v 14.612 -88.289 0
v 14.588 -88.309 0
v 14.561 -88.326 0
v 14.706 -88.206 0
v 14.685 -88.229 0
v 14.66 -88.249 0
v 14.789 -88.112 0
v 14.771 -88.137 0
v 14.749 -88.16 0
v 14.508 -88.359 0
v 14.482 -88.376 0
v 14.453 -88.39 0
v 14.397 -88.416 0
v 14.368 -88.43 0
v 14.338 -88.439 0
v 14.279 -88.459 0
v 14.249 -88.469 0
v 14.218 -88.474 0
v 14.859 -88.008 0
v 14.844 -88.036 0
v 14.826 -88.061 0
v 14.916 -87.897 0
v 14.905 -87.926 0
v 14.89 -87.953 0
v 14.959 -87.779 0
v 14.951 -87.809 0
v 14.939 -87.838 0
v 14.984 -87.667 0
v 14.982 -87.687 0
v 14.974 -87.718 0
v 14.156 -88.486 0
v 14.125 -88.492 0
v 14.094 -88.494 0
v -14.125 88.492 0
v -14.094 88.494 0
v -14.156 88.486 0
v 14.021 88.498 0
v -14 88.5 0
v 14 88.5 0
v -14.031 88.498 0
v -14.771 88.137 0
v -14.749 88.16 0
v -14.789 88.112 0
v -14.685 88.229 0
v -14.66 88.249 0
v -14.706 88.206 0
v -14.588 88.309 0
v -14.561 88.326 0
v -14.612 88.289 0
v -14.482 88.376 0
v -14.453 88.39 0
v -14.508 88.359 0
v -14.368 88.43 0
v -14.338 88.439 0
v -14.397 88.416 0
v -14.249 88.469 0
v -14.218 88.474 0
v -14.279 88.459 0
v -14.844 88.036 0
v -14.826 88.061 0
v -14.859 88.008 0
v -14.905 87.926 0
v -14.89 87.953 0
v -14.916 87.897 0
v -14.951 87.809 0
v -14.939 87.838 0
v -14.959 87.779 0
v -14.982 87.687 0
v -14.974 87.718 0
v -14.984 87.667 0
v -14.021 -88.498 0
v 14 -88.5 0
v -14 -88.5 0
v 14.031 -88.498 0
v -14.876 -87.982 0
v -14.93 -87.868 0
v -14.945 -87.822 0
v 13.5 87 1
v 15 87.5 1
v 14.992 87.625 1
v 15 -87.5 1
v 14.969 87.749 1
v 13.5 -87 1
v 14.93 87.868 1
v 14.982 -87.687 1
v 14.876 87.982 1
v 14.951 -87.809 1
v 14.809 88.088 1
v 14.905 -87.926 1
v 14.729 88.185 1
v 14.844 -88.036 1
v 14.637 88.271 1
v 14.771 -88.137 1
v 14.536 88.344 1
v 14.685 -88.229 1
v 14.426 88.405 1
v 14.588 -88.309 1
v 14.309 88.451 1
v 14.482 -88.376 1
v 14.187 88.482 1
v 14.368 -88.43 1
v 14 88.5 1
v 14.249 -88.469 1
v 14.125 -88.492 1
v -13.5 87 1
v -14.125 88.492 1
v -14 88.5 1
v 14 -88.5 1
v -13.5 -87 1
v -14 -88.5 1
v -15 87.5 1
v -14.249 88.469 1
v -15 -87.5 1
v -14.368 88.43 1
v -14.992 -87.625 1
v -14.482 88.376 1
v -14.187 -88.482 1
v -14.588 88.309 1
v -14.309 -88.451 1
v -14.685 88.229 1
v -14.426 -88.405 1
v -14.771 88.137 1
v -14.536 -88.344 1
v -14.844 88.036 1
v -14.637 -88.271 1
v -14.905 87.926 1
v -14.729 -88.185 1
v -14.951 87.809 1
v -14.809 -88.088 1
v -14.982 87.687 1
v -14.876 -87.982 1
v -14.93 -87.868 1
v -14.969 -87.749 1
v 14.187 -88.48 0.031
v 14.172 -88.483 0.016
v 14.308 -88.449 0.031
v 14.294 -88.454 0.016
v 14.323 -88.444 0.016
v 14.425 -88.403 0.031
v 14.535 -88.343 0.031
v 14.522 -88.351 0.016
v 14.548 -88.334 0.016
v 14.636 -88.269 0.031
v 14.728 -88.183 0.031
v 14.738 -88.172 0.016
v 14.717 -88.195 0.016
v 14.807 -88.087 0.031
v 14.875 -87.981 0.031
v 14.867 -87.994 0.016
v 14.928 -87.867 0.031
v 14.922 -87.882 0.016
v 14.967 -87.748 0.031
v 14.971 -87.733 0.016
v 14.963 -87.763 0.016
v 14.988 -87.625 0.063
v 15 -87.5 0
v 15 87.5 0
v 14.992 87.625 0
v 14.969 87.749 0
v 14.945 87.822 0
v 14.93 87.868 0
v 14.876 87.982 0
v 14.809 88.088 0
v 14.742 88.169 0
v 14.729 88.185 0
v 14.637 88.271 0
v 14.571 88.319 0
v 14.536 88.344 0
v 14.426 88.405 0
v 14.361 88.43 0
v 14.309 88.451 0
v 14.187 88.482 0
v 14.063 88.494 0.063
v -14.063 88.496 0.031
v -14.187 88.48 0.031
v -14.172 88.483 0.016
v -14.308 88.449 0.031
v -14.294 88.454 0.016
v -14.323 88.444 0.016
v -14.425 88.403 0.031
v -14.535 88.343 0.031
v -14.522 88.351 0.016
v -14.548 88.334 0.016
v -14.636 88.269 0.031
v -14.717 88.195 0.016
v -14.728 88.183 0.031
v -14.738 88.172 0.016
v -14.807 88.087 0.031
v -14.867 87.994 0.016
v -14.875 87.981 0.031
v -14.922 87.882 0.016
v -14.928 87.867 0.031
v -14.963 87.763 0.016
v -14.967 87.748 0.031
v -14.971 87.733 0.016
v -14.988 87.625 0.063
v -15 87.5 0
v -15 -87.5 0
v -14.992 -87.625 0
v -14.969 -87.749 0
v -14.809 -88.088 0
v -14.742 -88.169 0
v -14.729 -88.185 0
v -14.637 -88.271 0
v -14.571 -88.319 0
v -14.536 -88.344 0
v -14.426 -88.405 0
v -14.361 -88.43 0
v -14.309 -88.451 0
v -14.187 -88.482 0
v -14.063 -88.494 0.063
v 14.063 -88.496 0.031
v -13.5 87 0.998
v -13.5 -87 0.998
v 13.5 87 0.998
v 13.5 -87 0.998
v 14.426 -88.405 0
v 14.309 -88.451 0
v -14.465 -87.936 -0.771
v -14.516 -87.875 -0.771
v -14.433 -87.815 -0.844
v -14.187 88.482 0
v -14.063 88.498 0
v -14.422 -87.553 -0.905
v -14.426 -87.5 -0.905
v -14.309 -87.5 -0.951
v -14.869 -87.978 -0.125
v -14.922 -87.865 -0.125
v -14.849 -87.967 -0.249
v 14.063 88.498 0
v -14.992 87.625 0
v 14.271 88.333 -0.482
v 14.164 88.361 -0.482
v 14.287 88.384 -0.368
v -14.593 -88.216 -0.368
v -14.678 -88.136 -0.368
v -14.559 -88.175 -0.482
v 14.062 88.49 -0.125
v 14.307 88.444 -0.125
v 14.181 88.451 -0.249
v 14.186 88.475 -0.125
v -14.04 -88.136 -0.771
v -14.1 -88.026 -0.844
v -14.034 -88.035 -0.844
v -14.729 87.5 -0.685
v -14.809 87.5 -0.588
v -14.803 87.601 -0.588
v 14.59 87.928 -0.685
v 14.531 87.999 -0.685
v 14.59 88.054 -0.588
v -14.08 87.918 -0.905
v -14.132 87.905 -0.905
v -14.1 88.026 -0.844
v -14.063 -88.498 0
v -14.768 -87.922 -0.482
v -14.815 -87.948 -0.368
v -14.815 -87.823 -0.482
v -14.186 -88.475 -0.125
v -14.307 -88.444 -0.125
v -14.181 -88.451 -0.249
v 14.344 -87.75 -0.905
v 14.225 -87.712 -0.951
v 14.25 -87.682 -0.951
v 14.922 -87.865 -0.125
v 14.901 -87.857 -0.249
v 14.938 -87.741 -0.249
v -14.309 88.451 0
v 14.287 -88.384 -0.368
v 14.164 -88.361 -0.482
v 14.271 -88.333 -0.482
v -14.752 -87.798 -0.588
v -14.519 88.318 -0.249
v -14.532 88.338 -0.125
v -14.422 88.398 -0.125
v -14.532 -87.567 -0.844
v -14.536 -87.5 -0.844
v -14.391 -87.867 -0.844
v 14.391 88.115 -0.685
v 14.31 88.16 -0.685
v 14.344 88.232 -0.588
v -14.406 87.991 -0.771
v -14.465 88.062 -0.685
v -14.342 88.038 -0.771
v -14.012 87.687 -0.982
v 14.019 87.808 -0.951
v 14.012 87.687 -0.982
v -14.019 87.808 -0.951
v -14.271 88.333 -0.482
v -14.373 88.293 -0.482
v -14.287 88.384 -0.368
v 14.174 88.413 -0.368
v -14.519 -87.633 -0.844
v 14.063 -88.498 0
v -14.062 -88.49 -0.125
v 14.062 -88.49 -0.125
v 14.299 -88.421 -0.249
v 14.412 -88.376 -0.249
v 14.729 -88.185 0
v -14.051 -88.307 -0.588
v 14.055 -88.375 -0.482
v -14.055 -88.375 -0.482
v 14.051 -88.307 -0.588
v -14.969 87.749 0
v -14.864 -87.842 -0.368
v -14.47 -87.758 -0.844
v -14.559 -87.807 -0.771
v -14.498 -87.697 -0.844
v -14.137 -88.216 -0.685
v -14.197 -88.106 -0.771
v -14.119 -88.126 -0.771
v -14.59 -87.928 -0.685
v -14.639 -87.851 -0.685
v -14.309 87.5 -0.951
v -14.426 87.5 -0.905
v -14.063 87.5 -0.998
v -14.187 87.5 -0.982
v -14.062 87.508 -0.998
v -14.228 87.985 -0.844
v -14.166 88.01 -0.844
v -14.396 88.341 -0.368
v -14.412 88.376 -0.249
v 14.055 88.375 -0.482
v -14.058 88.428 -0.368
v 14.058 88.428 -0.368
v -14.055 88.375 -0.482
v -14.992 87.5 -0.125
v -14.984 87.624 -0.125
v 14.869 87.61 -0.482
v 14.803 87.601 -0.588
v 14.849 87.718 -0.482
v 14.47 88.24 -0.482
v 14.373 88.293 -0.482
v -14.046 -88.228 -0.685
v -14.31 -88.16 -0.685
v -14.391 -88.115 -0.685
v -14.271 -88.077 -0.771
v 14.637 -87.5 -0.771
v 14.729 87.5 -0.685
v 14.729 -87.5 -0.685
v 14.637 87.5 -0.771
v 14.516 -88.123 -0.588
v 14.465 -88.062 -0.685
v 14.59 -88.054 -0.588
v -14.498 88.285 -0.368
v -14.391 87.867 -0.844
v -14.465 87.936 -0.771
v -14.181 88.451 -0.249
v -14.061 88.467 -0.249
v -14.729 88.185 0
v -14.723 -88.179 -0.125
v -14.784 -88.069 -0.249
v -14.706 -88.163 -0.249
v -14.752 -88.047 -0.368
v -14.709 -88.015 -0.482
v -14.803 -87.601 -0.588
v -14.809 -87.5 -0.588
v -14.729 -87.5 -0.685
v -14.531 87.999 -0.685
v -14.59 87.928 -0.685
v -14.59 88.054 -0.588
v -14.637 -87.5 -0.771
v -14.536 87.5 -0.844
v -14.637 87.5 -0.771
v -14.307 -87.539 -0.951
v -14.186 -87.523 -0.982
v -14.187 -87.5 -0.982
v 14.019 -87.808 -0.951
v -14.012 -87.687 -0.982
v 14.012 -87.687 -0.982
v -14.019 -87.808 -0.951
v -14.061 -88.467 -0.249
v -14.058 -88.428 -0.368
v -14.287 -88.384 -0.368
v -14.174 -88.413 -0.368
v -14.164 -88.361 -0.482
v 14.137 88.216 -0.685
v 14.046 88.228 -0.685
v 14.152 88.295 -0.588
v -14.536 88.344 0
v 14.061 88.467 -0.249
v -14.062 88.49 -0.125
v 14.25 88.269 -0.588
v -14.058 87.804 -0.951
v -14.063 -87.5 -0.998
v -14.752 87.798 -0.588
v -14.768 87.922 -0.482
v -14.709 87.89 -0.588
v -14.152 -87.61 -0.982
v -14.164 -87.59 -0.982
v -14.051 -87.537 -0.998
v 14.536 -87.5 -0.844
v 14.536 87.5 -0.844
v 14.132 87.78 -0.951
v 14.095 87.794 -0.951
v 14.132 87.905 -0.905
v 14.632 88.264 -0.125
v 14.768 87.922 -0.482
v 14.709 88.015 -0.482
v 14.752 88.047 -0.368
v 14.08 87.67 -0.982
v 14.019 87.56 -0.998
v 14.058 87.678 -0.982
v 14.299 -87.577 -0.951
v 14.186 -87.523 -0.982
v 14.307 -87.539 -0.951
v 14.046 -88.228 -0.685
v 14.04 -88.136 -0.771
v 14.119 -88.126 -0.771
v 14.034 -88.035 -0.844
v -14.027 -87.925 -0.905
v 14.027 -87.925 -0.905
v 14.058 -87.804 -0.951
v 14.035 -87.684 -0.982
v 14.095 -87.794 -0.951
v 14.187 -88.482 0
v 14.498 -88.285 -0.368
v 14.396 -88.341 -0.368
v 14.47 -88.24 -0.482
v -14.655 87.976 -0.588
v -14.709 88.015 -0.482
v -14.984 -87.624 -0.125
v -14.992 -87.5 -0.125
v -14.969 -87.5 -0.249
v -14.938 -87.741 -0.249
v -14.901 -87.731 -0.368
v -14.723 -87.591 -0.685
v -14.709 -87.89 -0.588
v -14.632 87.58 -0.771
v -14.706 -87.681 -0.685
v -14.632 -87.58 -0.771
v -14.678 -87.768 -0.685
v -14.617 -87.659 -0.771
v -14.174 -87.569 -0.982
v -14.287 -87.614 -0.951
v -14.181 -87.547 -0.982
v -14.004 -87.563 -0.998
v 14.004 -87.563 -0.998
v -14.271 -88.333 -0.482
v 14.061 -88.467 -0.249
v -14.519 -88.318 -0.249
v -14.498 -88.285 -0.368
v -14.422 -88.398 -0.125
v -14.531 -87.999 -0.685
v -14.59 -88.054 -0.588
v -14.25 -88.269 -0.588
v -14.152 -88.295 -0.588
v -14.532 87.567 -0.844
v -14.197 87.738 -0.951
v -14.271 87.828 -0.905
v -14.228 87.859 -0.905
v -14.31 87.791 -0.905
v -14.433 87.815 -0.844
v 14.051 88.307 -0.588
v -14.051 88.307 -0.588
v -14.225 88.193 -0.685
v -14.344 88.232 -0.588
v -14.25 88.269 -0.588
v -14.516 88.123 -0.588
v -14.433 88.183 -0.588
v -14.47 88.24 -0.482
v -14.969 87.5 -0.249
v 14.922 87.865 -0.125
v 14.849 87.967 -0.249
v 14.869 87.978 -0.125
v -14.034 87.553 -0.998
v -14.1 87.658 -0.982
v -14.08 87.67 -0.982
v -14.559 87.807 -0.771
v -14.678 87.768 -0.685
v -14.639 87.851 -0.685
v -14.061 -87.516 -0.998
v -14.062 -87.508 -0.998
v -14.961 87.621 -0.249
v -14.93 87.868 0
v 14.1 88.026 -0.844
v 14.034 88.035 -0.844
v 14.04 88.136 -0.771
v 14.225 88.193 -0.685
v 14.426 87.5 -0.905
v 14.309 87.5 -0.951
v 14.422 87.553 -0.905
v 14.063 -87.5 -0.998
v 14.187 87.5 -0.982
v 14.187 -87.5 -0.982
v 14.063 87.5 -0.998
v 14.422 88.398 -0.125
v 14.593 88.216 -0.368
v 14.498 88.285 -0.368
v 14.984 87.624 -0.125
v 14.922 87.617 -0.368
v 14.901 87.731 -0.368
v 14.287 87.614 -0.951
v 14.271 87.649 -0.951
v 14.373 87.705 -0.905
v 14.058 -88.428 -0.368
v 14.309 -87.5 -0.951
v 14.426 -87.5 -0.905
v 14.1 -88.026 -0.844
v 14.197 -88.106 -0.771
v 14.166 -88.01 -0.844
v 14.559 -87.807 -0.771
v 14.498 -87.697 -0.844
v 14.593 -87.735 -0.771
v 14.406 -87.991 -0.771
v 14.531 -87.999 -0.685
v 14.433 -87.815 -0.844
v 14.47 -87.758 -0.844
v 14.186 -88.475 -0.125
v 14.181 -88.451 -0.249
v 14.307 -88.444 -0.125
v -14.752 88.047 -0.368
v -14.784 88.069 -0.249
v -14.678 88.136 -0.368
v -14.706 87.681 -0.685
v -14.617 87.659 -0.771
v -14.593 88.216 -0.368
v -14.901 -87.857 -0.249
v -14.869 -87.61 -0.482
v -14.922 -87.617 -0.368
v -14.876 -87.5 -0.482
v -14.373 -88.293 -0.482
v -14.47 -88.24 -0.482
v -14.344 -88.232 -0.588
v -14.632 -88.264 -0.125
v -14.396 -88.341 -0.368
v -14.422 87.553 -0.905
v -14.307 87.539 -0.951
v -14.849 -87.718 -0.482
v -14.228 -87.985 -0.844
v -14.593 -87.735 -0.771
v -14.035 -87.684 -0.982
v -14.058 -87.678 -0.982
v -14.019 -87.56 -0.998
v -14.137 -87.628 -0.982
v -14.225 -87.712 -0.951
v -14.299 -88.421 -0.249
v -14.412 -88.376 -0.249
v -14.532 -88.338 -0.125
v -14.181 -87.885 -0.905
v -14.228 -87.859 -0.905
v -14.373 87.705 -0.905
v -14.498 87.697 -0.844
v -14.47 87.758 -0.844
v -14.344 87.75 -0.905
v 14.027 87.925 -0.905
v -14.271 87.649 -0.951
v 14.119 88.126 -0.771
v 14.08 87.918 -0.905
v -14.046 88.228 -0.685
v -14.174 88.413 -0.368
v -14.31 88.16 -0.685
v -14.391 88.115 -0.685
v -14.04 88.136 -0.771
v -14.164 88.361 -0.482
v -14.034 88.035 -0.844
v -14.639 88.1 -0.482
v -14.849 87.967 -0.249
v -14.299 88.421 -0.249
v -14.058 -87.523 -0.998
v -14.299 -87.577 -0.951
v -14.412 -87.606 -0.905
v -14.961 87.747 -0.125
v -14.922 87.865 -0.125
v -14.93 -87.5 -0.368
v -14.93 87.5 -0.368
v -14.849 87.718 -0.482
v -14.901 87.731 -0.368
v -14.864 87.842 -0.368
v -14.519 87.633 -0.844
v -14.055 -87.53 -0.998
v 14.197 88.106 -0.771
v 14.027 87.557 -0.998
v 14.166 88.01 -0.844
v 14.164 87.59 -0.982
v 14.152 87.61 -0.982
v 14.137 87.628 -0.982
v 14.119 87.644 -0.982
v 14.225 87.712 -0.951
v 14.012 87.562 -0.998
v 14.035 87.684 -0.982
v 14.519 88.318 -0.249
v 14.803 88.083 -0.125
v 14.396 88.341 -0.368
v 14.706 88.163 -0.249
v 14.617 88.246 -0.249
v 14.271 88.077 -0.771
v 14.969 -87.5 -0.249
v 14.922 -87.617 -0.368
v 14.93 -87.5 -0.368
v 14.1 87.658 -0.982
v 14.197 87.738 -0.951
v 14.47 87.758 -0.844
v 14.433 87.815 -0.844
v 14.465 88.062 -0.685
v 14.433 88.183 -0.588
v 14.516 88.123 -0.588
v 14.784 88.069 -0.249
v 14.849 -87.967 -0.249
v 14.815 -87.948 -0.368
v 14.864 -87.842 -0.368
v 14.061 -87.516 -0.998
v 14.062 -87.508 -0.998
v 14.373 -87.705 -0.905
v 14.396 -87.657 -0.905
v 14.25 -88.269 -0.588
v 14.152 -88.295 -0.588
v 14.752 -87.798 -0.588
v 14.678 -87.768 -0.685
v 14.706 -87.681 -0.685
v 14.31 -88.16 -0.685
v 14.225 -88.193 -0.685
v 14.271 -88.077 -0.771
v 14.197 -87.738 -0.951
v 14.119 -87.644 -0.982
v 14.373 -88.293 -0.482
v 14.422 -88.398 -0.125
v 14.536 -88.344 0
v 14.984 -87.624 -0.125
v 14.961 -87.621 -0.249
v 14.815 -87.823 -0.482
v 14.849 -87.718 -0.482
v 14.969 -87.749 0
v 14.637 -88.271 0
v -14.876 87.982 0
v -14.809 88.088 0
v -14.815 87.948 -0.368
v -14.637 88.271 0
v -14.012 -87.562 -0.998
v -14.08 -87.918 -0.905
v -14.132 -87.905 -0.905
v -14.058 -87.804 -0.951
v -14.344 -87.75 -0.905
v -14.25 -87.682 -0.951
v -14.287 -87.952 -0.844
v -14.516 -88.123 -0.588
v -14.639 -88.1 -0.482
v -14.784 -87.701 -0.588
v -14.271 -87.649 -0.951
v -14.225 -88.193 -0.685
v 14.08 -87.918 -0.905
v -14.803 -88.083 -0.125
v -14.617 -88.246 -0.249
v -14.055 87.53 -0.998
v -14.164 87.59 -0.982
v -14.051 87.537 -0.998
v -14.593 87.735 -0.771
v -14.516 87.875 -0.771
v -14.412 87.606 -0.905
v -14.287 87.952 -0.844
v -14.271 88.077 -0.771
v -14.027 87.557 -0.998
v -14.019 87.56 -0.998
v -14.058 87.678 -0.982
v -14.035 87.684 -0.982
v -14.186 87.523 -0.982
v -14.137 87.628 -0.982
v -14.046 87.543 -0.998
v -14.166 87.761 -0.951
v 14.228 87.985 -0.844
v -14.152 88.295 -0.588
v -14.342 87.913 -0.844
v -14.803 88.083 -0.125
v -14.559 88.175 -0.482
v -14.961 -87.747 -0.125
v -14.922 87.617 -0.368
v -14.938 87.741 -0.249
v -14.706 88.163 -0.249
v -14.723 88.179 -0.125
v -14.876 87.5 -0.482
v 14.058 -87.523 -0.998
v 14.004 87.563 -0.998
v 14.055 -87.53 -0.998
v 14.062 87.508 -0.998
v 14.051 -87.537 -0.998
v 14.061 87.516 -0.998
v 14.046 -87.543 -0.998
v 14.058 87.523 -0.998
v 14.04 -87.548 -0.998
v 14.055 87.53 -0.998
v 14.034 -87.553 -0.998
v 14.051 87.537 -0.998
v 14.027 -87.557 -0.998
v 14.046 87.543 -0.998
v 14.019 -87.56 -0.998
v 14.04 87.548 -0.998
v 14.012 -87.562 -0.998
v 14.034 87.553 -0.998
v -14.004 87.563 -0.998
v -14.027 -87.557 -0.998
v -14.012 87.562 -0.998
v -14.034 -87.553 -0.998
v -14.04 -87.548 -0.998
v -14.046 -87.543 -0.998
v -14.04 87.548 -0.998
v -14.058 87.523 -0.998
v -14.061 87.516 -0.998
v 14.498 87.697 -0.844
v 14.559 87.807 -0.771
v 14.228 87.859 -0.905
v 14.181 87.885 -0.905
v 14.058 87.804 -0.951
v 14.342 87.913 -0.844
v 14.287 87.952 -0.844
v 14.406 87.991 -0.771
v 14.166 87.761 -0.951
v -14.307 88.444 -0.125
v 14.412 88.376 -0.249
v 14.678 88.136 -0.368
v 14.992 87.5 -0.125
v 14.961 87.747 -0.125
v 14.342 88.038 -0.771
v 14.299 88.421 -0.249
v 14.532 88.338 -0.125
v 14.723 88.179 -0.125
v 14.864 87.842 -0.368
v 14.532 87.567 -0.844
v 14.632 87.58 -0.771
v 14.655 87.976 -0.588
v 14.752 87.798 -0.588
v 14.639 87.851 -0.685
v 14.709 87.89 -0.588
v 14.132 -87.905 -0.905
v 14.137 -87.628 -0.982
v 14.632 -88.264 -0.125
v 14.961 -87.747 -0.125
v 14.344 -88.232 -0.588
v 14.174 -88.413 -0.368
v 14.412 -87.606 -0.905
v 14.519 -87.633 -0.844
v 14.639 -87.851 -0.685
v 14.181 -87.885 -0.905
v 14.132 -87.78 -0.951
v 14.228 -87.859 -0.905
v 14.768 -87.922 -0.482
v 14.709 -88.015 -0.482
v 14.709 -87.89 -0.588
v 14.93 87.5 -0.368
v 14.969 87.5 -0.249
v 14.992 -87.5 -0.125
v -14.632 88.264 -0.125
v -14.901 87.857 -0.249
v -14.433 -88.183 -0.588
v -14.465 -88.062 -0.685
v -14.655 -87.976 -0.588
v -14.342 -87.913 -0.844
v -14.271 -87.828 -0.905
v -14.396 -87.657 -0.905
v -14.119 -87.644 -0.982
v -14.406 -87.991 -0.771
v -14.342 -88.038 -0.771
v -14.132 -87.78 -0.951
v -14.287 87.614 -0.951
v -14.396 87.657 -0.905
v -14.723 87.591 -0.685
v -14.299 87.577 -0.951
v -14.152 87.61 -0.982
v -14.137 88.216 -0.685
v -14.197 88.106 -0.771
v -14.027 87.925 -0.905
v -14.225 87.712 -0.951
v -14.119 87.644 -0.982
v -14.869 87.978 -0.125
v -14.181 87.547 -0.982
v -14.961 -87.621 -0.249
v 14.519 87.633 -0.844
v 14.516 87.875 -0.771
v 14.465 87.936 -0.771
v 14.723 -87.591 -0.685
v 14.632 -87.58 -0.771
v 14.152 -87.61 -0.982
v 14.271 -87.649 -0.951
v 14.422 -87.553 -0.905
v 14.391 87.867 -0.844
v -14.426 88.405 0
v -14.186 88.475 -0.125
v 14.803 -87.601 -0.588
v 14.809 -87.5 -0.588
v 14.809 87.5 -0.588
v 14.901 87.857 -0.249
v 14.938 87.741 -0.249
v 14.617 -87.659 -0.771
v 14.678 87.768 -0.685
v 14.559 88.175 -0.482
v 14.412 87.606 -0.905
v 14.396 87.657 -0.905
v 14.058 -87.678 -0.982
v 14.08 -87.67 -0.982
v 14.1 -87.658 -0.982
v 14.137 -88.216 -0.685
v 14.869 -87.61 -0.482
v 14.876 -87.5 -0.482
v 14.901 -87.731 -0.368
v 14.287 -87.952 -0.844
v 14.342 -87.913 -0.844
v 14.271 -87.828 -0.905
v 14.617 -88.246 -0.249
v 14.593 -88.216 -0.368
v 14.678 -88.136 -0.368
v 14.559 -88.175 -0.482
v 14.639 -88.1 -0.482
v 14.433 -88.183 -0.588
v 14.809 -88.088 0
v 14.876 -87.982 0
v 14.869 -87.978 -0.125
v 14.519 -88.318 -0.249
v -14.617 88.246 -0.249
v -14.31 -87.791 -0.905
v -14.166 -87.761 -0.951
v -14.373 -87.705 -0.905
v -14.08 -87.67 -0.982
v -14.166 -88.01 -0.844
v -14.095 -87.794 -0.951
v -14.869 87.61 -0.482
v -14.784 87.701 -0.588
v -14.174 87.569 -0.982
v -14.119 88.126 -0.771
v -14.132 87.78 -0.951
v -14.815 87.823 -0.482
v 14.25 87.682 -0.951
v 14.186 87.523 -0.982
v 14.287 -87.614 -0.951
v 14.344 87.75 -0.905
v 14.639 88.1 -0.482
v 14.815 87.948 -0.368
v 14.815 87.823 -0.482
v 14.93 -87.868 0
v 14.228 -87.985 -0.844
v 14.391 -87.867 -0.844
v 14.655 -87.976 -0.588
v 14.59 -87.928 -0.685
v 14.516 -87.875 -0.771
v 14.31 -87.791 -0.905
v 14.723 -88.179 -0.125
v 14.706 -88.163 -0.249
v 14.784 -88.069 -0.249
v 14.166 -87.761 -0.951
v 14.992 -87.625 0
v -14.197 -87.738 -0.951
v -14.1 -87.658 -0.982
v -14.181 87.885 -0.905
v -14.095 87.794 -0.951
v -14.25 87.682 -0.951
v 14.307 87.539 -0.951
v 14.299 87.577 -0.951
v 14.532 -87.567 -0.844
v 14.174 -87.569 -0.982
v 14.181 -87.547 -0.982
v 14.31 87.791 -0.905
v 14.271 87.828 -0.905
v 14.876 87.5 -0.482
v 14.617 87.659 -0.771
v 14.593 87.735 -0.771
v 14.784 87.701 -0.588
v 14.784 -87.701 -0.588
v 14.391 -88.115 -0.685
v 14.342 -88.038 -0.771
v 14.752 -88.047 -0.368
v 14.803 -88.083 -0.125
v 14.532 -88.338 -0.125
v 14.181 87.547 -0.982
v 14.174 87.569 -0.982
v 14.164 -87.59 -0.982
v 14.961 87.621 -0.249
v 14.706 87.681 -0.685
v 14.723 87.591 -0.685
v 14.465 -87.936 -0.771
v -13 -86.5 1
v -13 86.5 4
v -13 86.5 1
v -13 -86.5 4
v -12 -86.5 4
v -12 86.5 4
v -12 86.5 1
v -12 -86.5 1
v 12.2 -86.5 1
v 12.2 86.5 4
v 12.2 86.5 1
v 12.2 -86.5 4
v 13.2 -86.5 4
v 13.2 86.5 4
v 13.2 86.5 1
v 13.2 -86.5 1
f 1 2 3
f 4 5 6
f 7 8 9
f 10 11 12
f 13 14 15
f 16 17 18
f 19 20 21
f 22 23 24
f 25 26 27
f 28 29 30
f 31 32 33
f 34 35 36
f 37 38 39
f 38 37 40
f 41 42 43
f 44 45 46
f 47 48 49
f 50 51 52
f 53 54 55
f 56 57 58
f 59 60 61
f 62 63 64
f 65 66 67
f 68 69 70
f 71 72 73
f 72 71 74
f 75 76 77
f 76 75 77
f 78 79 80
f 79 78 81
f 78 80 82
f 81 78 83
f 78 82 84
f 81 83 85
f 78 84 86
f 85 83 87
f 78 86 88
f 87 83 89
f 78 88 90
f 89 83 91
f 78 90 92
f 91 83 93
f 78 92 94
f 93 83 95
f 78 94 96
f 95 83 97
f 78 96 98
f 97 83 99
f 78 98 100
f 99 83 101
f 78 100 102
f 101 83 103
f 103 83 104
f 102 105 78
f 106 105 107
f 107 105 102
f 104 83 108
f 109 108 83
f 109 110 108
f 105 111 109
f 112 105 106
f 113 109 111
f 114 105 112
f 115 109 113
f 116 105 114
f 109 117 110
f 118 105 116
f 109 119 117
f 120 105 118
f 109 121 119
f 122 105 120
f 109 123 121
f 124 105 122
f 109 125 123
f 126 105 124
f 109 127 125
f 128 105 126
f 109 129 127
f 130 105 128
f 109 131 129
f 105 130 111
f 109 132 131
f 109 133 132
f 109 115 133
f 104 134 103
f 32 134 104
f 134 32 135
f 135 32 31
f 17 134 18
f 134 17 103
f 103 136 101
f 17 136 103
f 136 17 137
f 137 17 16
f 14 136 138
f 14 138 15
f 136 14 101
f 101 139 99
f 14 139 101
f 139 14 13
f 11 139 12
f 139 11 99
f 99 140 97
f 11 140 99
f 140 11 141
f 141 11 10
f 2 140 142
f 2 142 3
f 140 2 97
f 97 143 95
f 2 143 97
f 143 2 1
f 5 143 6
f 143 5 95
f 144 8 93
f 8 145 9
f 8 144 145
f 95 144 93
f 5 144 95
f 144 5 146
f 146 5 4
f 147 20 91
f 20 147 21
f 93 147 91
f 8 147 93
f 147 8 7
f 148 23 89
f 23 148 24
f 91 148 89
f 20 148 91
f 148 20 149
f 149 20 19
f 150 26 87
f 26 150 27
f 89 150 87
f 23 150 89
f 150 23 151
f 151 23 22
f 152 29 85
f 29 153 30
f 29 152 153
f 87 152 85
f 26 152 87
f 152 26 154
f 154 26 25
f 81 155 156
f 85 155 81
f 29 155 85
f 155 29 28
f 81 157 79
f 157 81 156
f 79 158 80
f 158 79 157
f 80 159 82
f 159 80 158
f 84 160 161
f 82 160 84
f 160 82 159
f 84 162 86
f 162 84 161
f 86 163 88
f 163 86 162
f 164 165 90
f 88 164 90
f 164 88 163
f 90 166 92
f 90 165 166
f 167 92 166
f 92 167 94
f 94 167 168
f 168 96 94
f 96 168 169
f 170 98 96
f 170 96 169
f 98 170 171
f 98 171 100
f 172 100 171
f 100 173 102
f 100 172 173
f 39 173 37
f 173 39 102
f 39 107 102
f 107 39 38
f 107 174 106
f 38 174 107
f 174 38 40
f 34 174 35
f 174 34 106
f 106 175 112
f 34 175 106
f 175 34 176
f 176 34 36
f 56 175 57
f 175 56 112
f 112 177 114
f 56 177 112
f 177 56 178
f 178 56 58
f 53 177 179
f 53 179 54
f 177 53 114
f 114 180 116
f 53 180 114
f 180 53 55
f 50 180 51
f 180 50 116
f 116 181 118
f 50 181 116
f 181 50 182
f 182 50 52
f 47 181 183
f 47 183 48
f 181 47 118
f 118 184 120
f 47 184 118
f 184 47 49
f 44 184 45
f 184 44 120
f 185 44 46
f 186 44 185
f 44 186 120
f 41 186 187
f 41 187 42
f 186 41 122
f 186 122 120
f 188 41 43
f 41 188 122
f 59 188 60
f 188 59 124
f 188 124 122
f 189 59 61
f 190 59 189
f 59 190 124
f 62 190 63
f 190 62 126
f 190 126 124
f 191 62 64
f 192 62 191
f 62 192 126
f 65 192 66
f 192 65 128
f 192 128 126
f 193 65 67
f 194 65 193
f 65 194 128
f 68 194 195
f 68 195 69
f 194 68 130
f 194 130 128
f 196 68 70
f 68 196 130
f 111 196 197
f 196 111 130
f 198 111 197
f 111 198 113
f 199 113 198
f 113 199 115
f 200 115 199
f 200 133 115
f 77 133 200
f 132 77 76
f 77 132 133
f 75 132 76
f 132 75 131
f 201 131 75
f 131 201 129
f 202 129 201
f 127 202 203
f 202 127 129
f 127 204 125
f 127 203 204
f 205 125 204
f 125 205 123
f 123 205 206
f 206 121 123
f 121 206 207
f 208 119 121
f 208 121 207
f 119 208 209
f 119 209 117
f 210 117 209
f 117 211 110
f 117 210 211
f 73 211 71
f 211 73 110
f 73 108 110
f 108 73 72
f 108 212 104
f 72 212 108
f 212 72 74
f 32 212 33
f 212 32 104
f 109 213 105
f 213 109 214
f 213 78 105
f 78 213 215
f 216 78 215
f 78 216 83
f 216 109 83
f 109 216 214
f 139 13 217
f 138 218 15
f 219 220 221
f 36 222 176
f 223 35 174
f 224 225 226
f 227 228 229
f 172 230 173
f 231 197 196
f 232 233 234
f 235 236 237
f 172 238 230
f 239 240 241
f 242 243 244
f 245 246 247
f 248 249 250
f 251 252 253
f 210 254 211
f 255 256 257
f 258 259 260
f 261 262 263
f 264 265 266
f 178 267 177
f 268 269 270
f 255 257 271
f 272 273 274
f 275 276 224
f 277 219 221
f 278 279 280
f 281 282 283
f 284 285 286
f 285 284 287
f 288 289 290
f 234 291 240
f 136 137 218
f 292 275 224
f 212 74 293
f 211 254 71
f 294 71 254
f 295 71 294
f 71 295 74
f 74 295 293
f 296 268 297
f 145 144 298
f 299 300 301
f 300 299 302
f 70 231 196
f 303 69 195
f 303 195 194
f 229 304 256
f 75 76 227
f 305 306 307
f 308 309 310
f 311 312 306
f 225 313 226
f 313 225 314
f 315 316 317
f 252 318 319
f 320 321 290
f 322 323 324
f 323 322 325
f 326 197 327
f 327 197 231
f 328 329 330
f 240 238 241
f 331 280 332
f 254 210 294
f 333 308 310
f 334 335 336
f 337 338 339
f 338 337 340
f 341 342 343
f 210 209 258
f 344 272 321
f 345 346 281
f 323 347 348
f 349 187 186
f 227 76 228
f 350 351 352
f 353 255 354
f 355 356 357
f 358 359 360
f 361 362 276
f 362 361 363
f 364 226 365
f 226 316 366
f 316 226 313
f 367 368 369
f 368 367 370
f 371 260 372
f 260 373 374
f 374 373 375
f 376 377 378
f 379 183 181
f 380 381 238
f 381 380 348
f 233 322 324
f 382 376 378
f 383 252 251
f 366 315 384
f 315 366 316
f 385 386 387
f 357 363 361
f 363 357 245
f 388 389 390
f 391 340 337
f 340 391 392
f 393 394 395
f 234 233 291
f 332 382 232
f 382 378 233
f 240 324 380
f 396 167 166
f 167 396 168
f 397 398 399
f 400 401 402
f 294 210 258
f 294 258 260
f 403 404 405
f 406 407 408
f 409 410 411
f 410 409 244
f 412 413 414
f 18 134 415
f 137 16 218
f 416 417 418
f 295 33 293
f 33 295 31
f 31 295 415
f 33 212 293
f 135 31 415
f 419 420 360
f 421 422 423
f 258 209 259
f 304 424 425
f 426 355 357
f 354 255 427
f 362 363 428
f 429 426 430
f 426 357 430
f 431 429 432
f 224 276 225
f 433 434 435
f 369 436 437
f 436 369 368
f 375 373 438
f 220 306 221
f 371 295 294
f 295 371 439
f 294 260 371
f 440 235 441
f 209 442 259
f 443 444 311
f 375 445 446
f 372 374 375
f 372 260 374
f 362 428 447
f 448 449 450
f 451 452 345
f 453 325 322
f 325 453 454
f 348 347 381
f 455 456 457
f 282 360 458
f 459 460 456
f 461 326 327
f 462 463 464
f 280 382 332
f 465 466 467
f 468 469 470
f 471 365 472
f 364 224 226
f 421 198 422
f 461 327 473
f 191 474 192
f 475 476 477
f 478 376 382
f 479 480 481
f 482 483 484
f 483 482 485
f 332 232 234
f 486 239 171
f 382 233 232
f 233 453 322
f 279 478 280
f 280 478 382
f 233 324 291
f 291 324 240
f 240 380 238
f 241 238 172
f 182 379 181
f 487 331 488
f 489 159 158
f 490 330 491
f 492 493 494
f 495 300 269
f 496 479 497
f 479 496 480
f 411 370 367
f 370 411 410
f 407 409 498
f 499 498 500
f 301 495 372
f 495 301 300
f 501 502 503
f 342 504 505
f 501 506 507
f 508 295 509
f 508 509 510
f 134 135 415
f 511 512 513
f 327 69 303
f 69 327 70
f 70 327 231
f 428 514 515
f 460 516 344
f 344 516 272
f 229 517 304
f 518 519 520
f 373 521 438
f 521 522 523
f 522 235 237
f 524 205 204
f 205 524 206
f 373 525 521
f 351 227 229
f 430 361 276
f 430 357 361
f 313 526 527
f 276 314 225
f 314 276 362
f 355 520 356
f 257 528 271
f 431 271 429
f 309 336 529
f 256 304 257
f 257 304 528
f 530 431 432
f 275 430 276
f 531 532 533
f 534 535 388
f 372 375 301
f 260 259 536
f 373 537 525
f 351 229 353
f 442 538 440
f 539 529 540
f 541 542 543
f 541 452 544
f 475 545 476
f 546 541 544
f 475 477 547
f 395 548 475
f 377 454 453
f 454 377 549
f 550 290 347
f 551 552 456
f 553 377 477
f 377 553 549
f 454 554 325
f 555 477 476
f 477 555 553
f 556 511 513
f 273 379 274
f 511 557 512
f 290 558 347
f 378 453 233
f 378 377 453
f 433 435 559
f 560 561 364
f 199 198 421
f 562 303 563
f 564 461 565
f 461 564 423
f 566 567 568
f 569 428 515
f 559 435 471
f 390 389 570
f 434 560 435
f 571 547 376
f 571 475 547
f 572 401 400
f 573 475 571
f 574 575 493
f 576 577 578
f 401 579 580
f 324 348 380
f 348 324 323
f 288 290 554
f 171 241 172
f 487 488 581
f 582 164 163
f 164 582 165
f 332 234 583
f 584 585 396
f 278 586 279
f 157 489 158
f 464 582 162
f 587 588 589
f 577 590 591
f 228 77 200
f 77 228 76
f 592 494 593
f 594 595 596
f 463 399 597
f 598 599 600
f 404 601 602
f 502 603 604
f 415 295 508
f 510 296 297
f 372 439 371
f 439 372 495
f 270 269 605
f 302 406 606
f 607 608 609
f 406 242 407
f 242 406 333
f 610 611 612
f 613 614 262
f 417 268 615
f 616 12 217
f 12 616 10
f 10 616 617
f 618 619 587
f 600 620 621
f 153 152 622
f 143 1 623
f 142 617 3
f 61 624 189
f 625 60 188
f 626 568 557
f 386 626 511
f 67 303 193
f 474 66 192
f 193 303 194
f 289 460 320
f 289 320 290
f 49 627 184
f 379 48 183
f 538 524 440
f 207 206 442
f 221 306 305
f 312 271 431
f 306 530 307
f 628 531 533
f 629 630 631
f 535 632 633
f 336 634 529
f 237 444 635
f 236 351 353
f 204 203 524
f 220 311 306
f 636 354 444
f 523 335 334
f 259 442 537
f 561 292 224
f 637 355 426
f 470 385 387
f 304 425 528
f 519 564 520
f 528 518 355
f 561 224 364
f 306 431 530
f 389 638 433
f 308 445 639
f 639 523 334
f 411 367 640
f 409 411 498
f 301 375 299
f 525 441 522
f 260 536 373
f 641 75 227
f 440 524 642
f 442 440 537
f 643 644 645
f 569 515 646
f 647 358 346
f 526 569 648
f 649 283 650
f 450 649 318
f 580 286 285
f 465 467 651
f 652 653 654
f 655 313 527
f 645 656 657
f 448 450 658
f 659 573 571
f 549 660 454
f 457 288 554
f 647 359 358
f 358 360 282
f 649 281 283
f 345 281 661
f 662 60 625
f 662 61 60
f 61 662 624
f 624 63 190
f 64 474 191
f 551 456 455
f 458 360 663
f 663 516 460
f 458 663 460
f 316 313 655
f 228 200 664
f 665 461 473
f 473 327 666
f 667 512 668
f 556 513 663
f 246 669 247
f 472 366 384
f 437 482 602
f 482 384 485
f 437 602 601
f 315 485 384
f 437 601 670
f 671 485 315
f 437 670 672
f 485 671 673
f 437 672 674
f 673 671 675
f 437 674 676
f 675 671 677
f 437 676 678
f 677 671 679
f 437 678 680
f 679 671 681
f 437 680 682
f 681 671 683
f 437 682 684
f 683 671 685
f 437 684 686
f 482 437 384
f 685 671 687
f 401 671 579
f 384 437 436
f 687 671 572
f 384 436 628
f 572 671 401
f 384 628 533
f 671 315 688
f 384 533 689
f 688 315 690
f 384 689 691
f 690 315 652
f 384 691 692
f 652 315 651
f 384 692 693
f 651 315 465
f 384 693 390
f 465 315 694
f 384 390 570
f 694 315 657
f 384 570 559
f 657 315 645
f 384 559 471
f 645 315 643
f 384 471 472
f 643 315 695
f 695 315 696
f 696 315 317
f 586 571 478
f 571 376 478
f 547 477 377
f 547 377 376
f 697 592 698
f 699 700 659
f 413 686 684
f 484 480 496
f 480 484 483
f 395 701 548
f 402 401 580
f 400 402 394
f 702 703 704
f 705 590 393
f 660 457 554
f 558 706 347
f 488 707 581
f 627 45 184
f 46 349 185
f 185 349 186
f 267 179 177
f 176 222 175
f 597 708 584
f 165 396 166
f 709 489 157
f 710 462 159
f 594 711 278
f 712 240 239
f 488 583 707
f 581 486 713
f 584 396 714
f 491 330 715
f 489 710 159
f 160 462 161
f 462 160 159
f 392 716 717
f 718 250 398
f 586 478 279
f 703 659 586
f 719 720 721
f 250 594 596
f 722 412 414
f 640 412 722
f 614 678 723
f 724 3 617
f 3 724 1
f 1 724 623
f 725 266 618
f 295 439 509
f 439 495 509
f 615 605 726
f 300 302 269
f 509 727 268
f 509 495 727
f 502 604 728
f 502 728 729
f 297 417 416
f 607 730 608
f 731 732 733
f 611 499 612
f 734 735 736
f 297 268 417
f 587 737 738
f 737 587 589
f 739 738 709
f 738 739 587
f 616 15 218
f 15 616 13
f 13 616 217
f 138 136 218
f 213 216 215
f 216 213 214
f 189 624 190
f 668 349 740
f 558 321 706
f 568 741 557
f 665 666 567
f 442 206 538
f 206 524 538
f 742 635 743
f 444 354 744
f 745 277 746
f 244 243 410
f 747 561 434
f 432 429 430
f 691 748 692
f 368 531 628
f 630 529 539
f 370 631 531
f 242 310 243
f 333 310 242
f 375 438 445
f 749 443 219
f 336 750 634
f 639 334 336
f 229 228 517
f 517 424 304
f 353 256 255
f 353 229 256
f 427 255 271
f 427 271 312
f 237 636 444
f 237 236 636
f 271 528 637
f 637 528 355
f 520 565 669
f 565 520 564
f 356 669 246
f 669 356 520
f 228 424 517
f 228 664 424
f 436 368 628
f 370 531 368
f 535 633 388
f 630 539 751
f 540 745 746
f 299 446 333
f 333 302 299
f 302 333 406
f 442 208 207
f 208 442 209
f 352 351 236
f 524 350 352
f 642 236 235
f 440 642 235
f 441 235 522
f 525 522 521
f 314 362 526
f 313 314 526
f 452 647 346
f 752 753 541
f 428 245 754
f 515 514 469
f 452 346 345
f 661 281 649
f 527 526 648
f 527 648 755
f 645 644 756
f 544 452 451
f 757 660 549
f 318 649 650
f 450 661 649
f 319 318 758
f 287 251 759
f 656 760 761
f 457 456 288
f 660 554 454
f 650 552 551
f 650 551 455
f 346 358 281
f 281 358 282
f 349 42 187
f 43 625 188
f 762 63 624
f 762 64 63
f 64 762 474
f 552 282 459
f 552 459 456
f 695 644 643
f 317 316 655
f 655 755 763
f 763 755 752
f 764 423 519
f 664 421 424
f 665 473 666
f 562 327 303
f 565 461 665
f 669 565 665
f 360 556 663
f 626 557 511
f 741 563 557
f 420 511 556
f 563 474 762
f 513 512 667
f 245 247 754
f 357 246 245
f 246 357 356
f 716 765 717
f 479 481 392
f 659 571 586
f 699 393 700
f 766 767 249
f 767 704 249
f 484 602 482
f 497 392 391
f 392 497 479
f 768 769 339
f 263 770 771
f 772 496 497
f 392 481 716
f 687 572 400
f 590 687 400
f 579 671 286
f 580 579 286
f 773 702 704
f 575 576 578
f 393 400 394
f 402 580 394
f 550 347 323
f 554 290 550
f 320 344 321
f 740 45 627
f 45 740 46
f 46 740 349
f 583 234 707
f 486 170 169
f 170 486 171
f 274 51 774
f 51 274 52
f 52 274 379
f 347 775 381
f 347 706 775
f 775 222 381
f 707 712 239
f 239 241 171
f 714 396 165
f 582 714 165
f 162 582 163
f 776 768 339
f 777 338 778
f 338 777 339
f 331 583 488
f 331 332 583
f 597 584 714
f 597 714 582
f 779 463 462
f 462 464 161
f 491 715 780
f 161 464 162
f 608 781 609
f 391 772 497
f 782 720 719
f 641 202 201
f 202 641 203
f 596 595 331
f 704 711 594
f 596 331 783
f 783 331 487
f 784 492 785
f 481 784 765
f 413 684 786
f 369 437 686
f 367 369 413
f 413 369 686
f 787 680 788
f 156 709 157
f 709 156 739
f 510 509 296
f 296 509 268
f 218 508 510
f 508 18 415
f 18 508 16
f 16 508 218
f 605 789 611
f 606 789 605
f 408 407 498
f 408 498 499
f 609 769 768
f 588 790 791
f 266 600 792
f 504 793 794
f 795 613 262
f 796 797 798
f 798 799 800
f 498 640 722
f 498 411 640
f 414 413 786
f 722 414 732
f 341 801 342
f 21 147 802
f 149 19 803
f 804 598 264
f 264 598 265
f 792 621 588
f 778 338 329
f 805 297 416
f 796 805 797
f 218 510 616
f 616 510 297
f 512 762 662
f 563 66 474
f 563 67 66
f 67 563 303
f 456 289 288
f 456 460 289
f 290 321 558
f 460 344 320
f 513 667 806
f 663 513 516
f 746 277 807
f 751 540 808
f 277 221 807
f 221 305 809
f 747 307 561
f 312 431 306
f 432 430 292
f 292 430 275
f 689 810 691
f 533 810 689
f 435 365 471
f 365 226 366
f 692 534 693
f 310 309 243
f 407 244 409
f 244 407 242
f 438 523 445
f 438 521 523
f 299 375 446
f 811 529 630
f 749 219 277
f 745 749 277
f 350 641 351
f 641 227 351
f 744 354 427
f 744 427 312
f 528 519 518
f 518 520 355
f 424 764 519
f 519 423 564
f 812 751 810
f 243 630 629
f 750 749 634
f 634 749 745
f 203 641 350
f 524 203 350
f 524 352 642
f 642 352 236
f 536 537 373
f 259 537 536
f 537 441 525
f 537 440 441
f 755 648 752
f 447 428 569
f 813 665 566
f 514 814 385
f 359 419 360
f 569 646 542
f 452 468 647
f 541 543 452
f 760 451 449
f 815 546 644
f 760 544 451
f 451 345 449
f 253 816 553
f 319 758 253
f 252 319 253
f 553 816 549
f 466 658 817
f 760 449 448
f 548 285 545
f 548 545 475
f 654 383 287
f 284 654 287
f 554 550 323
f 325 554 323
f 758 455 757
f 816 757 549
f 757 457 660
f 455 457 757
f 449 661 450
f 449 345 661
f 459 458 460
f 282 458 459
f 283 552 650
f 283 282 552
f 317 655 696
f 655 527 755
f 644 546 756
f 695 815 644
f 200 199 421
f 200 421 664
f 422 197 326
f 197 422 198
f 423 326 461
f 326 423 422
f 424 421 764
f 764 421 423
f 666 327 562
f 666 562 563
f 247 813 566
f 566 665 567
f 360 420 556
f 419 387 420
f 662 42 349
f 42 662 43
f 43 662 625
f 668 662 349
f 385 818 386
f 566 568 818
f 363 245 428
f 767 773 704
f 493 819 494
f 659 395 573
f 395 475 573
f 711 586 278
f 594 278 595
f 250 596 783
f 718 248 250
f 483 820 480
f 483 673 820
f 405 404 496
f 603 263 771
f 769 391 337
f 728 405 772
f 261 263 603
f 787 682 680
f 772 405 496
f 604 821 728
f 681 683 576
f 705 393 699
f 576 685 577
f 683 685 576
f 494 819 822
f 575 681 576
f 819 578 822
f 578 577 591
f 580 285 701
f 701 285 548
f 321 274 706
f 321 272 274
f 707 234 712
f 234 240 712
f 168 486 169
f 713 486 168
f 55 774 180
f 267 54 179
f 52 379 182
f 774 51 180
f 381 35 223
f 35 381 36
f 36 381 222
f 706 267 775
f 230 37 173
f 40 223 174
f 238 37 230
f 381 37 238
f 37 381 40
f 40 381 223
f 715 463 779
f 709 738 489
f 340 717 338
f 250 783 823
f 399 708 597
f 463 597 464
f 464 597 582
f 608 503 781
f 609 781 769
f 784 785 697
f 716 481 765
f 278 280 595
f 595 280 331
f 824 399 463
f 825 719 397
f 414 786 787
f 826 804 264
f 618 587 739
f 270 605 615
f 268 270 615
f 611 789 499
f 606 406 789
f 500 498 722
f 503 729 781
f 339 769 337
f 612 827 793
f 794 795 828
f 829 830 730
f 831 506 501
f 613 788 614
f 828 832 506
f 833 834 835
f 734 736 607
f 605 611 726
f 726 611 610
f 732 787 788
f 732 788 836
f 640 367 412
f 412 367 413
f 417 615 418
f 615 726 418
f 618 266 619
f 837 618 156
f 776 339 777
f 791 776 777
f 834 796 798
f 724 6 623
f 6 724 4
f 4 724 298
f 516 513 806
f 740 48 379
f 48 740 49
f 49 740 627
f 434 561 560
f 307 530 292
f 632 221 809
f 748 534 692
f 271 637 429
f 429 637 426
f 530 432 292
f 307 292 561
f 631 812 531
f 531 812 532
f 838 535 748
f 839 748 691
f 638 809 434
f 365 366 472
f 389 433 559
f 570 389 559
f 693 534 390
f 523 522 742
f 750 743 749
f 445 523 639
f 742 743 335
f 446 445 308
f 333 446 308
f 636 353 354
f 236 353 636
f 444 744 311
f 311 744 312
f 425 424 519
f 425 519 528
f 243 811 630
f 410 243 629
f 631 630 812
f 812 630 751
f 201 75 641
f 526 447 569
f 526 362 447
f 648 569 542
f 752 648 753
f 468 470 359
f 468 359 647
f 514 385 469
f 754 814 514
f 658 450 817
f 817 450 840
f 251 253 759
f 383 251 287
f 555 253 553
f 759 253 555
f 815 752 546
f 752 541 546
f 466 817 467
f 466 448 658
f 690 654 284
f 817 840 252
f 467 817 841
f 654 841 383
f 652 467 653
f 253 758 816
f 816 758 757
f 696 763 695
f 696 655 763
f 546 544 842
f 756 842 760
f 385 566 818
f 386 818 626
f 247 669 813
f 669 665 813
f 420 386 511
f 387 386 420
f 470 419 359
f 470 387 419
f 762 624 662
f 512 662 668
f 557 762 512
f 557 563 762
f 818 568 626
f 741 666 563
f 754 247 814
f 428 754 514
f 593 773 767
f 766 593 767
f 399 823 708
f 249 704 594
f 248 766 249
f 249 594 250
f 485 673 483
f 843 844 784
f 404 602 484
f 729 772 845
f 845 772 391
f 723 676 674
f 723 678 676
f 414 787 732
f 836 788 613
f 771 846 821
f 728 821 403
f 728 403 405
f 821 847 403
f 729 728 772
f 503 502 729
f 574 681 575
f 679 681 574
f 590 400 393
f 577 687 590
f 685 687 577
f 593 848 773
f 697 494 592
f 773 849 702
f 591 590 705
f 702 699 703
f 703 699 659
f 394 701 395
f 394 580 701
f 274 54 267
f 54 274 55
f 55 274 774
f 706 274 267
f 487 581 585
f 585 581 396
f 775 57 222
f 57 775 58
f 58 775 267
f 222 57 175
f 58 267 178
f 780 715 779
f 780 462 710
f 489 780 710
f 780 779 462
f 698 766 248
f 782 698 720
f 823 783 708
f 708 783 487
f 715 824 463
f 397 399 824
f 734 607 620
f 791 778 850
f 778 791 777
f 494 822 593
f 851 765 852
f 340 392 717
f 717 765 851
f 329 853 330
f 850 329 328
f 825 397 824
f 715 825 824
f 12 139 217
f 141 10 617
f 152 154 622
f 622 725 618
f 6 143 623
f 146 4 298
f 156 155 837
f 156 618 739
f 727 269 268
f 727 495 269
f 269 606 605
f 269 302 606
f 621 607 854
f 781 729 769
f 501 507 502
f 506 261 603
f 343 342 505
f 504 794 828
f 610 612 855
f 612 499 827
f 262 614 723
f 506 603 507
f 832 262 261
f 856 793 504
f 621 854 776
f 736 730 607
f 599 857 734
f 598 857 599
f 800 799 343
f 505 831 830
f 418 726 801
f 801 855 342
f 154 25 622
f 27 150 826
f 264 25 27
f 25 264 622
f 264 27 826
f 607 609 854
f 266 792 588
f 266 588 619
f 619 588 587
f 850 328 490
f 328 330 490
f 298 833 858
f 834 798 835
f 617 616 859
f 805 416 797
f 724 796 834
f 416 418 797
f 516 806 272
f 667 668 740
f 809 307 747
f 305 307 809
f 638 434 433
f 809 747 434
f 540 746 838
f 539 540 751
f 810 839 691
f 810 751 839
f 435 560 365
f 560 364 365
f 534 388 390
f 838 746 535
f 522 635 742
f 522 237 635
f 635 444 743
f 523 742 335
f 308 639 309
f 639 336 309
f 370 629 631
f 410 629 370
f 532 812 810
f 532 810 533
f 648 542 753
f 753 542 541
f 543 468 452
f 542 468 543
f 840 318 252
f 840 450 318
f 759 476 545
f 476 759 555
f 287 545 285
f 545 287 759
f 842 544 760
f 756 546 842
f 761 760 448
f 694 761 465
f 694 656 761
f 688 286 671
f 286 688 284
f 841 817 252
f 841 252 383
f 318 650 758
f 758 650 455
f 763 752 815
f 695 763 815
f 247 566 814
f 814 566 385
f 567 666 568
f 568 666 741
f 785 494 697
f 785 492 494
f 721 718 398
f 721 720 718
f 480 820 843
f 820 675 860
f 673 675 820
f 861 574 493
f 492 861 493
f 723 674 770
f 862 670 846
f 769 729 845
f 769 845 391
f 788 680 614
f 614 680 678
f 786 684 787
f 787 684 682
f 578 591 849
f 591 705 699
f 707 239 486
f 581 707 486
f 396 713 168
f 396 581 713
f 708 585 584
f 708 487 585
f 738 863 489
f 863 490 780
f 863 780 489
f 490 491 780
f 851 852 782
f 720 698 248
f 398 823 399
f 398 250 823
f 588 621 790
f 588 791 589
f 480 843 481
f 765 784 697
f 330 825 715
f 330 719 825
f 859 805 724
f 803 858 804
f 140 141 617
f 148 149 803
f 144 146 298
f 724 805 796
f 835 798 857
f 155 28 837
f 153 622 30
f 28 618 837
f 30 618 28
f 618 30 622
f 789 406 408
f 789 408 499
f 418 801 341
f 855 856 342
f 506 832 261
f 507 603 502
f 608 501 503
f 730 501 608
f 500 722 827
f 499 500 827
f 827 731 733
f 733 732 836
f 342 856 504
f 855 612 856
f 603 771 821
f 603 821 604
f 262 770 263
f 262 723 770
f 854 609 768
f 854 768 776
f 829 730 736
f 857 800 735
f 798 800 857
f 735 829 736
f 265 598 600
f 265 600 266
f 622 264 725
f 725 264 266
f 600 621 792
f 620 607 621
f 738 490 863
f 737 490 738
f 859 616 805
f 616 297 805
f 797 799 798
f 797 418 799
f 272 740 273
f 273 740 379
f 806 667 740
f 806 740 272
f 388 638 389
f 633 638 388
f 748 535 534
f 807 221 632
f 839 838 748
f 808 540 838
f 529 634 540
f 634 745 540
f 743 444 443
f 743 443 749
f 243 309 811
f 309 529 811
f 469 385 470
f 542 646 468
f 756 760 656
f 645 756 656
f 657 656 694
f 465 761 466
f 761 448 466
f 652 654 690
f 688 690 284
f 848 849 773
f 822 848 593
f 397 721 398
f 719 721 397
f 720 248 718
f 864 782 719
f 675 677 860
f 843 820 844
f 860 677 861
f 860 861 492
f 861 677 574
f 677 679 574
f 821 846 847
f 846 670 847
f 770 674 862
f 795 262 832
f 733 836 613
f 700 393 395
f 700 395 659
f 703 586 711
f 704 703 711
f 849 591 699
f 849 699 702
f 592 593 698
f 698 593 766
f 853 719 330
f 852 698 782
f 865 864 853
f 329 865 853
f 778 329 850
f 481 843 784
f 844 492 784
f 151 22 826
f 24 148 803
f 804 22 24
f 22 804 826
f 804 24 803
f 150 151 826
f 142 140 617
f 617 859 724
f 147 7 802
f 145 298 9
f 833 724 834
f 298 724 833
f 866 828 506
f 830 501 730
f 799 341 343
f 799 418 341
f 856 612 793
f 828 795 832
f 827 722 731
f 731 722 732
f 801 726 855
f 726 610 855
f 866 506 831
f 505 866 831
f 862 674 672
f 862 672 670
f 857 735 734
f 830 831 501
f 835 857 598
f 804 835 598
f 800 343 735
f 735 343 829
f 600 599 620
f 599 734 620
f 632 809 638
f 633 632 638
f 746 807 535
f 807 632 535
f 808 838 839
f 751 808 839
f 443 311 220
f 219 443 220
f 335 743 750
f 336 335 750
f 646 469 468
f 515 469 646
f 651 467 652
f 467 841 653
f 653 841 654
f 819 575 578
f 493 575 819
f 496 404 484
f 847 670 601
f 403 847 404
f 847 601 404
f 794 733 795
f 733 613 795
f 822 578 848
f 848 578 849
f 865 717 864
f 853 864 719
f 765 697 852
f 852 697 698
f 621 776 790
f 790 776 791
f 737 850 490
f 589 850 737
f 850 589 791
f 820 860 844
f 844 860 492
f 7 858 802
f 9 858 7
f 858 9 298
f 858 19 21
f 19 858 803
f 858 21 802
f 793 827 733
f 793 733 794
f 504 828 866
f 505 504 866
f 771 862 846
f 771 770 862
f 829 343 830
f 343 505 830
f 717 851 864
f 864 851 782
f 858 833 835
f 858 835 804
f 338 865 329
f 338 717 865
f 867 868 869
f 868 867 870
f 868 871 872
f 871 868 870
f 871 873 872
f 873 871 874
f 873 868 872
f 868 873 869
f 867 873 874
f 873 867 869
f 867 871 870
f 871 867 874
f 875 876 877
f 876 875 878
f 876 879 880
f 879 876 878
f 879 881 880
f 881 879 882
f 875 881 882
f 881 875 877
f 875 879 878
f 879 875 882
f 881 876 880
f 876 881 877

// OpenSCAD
$fn=50;
BOX_W = 28;  // Box Width
BOX_L = 175; // Box Length
BOX_H = 1.0; // Box Height
CORNER_RADIUS = 1.0; // Radius of corners
WALL = 1.0;// Wall Thickness

difference() {
  union() {
  linear_extrude( BOX_H )
    difference(){
      offset(r=CORNER_RADIUS) square( [BOX_W, BOX_L], center=true );
      offset( r= CORNER_RADIUS - WALL ) square( [BOX_W-WALL, BOX_L-WALL],   center=true );
    };

  coordinates = [ [0,0],[0,BOX_L],[BOX_W,BOX_L],[BOX_W,0] ];

  translate ( [-BOX_W/2, -BOX_L/2] )
    hull()
    for (i = coordinates)
      translate(i) sphere(CORNER_RADIUS);

    translate([BOX_W/-2+WALL,BOX_L/-2+1,WALL]) cube([WALL,BOX_L-(WALL*2),3]);

    translate([BOX_W/2-WALL*1.8,BOX_L/-2+1,WALL]) cube([WALL,BOX_L-(WALL*2),3]);

    //translate([1,-31,WALL-0.9])
    //rotate([90,0,0])
    //linear_extrude(25.1) square([7.8,1.8], center=true);
  }
}
